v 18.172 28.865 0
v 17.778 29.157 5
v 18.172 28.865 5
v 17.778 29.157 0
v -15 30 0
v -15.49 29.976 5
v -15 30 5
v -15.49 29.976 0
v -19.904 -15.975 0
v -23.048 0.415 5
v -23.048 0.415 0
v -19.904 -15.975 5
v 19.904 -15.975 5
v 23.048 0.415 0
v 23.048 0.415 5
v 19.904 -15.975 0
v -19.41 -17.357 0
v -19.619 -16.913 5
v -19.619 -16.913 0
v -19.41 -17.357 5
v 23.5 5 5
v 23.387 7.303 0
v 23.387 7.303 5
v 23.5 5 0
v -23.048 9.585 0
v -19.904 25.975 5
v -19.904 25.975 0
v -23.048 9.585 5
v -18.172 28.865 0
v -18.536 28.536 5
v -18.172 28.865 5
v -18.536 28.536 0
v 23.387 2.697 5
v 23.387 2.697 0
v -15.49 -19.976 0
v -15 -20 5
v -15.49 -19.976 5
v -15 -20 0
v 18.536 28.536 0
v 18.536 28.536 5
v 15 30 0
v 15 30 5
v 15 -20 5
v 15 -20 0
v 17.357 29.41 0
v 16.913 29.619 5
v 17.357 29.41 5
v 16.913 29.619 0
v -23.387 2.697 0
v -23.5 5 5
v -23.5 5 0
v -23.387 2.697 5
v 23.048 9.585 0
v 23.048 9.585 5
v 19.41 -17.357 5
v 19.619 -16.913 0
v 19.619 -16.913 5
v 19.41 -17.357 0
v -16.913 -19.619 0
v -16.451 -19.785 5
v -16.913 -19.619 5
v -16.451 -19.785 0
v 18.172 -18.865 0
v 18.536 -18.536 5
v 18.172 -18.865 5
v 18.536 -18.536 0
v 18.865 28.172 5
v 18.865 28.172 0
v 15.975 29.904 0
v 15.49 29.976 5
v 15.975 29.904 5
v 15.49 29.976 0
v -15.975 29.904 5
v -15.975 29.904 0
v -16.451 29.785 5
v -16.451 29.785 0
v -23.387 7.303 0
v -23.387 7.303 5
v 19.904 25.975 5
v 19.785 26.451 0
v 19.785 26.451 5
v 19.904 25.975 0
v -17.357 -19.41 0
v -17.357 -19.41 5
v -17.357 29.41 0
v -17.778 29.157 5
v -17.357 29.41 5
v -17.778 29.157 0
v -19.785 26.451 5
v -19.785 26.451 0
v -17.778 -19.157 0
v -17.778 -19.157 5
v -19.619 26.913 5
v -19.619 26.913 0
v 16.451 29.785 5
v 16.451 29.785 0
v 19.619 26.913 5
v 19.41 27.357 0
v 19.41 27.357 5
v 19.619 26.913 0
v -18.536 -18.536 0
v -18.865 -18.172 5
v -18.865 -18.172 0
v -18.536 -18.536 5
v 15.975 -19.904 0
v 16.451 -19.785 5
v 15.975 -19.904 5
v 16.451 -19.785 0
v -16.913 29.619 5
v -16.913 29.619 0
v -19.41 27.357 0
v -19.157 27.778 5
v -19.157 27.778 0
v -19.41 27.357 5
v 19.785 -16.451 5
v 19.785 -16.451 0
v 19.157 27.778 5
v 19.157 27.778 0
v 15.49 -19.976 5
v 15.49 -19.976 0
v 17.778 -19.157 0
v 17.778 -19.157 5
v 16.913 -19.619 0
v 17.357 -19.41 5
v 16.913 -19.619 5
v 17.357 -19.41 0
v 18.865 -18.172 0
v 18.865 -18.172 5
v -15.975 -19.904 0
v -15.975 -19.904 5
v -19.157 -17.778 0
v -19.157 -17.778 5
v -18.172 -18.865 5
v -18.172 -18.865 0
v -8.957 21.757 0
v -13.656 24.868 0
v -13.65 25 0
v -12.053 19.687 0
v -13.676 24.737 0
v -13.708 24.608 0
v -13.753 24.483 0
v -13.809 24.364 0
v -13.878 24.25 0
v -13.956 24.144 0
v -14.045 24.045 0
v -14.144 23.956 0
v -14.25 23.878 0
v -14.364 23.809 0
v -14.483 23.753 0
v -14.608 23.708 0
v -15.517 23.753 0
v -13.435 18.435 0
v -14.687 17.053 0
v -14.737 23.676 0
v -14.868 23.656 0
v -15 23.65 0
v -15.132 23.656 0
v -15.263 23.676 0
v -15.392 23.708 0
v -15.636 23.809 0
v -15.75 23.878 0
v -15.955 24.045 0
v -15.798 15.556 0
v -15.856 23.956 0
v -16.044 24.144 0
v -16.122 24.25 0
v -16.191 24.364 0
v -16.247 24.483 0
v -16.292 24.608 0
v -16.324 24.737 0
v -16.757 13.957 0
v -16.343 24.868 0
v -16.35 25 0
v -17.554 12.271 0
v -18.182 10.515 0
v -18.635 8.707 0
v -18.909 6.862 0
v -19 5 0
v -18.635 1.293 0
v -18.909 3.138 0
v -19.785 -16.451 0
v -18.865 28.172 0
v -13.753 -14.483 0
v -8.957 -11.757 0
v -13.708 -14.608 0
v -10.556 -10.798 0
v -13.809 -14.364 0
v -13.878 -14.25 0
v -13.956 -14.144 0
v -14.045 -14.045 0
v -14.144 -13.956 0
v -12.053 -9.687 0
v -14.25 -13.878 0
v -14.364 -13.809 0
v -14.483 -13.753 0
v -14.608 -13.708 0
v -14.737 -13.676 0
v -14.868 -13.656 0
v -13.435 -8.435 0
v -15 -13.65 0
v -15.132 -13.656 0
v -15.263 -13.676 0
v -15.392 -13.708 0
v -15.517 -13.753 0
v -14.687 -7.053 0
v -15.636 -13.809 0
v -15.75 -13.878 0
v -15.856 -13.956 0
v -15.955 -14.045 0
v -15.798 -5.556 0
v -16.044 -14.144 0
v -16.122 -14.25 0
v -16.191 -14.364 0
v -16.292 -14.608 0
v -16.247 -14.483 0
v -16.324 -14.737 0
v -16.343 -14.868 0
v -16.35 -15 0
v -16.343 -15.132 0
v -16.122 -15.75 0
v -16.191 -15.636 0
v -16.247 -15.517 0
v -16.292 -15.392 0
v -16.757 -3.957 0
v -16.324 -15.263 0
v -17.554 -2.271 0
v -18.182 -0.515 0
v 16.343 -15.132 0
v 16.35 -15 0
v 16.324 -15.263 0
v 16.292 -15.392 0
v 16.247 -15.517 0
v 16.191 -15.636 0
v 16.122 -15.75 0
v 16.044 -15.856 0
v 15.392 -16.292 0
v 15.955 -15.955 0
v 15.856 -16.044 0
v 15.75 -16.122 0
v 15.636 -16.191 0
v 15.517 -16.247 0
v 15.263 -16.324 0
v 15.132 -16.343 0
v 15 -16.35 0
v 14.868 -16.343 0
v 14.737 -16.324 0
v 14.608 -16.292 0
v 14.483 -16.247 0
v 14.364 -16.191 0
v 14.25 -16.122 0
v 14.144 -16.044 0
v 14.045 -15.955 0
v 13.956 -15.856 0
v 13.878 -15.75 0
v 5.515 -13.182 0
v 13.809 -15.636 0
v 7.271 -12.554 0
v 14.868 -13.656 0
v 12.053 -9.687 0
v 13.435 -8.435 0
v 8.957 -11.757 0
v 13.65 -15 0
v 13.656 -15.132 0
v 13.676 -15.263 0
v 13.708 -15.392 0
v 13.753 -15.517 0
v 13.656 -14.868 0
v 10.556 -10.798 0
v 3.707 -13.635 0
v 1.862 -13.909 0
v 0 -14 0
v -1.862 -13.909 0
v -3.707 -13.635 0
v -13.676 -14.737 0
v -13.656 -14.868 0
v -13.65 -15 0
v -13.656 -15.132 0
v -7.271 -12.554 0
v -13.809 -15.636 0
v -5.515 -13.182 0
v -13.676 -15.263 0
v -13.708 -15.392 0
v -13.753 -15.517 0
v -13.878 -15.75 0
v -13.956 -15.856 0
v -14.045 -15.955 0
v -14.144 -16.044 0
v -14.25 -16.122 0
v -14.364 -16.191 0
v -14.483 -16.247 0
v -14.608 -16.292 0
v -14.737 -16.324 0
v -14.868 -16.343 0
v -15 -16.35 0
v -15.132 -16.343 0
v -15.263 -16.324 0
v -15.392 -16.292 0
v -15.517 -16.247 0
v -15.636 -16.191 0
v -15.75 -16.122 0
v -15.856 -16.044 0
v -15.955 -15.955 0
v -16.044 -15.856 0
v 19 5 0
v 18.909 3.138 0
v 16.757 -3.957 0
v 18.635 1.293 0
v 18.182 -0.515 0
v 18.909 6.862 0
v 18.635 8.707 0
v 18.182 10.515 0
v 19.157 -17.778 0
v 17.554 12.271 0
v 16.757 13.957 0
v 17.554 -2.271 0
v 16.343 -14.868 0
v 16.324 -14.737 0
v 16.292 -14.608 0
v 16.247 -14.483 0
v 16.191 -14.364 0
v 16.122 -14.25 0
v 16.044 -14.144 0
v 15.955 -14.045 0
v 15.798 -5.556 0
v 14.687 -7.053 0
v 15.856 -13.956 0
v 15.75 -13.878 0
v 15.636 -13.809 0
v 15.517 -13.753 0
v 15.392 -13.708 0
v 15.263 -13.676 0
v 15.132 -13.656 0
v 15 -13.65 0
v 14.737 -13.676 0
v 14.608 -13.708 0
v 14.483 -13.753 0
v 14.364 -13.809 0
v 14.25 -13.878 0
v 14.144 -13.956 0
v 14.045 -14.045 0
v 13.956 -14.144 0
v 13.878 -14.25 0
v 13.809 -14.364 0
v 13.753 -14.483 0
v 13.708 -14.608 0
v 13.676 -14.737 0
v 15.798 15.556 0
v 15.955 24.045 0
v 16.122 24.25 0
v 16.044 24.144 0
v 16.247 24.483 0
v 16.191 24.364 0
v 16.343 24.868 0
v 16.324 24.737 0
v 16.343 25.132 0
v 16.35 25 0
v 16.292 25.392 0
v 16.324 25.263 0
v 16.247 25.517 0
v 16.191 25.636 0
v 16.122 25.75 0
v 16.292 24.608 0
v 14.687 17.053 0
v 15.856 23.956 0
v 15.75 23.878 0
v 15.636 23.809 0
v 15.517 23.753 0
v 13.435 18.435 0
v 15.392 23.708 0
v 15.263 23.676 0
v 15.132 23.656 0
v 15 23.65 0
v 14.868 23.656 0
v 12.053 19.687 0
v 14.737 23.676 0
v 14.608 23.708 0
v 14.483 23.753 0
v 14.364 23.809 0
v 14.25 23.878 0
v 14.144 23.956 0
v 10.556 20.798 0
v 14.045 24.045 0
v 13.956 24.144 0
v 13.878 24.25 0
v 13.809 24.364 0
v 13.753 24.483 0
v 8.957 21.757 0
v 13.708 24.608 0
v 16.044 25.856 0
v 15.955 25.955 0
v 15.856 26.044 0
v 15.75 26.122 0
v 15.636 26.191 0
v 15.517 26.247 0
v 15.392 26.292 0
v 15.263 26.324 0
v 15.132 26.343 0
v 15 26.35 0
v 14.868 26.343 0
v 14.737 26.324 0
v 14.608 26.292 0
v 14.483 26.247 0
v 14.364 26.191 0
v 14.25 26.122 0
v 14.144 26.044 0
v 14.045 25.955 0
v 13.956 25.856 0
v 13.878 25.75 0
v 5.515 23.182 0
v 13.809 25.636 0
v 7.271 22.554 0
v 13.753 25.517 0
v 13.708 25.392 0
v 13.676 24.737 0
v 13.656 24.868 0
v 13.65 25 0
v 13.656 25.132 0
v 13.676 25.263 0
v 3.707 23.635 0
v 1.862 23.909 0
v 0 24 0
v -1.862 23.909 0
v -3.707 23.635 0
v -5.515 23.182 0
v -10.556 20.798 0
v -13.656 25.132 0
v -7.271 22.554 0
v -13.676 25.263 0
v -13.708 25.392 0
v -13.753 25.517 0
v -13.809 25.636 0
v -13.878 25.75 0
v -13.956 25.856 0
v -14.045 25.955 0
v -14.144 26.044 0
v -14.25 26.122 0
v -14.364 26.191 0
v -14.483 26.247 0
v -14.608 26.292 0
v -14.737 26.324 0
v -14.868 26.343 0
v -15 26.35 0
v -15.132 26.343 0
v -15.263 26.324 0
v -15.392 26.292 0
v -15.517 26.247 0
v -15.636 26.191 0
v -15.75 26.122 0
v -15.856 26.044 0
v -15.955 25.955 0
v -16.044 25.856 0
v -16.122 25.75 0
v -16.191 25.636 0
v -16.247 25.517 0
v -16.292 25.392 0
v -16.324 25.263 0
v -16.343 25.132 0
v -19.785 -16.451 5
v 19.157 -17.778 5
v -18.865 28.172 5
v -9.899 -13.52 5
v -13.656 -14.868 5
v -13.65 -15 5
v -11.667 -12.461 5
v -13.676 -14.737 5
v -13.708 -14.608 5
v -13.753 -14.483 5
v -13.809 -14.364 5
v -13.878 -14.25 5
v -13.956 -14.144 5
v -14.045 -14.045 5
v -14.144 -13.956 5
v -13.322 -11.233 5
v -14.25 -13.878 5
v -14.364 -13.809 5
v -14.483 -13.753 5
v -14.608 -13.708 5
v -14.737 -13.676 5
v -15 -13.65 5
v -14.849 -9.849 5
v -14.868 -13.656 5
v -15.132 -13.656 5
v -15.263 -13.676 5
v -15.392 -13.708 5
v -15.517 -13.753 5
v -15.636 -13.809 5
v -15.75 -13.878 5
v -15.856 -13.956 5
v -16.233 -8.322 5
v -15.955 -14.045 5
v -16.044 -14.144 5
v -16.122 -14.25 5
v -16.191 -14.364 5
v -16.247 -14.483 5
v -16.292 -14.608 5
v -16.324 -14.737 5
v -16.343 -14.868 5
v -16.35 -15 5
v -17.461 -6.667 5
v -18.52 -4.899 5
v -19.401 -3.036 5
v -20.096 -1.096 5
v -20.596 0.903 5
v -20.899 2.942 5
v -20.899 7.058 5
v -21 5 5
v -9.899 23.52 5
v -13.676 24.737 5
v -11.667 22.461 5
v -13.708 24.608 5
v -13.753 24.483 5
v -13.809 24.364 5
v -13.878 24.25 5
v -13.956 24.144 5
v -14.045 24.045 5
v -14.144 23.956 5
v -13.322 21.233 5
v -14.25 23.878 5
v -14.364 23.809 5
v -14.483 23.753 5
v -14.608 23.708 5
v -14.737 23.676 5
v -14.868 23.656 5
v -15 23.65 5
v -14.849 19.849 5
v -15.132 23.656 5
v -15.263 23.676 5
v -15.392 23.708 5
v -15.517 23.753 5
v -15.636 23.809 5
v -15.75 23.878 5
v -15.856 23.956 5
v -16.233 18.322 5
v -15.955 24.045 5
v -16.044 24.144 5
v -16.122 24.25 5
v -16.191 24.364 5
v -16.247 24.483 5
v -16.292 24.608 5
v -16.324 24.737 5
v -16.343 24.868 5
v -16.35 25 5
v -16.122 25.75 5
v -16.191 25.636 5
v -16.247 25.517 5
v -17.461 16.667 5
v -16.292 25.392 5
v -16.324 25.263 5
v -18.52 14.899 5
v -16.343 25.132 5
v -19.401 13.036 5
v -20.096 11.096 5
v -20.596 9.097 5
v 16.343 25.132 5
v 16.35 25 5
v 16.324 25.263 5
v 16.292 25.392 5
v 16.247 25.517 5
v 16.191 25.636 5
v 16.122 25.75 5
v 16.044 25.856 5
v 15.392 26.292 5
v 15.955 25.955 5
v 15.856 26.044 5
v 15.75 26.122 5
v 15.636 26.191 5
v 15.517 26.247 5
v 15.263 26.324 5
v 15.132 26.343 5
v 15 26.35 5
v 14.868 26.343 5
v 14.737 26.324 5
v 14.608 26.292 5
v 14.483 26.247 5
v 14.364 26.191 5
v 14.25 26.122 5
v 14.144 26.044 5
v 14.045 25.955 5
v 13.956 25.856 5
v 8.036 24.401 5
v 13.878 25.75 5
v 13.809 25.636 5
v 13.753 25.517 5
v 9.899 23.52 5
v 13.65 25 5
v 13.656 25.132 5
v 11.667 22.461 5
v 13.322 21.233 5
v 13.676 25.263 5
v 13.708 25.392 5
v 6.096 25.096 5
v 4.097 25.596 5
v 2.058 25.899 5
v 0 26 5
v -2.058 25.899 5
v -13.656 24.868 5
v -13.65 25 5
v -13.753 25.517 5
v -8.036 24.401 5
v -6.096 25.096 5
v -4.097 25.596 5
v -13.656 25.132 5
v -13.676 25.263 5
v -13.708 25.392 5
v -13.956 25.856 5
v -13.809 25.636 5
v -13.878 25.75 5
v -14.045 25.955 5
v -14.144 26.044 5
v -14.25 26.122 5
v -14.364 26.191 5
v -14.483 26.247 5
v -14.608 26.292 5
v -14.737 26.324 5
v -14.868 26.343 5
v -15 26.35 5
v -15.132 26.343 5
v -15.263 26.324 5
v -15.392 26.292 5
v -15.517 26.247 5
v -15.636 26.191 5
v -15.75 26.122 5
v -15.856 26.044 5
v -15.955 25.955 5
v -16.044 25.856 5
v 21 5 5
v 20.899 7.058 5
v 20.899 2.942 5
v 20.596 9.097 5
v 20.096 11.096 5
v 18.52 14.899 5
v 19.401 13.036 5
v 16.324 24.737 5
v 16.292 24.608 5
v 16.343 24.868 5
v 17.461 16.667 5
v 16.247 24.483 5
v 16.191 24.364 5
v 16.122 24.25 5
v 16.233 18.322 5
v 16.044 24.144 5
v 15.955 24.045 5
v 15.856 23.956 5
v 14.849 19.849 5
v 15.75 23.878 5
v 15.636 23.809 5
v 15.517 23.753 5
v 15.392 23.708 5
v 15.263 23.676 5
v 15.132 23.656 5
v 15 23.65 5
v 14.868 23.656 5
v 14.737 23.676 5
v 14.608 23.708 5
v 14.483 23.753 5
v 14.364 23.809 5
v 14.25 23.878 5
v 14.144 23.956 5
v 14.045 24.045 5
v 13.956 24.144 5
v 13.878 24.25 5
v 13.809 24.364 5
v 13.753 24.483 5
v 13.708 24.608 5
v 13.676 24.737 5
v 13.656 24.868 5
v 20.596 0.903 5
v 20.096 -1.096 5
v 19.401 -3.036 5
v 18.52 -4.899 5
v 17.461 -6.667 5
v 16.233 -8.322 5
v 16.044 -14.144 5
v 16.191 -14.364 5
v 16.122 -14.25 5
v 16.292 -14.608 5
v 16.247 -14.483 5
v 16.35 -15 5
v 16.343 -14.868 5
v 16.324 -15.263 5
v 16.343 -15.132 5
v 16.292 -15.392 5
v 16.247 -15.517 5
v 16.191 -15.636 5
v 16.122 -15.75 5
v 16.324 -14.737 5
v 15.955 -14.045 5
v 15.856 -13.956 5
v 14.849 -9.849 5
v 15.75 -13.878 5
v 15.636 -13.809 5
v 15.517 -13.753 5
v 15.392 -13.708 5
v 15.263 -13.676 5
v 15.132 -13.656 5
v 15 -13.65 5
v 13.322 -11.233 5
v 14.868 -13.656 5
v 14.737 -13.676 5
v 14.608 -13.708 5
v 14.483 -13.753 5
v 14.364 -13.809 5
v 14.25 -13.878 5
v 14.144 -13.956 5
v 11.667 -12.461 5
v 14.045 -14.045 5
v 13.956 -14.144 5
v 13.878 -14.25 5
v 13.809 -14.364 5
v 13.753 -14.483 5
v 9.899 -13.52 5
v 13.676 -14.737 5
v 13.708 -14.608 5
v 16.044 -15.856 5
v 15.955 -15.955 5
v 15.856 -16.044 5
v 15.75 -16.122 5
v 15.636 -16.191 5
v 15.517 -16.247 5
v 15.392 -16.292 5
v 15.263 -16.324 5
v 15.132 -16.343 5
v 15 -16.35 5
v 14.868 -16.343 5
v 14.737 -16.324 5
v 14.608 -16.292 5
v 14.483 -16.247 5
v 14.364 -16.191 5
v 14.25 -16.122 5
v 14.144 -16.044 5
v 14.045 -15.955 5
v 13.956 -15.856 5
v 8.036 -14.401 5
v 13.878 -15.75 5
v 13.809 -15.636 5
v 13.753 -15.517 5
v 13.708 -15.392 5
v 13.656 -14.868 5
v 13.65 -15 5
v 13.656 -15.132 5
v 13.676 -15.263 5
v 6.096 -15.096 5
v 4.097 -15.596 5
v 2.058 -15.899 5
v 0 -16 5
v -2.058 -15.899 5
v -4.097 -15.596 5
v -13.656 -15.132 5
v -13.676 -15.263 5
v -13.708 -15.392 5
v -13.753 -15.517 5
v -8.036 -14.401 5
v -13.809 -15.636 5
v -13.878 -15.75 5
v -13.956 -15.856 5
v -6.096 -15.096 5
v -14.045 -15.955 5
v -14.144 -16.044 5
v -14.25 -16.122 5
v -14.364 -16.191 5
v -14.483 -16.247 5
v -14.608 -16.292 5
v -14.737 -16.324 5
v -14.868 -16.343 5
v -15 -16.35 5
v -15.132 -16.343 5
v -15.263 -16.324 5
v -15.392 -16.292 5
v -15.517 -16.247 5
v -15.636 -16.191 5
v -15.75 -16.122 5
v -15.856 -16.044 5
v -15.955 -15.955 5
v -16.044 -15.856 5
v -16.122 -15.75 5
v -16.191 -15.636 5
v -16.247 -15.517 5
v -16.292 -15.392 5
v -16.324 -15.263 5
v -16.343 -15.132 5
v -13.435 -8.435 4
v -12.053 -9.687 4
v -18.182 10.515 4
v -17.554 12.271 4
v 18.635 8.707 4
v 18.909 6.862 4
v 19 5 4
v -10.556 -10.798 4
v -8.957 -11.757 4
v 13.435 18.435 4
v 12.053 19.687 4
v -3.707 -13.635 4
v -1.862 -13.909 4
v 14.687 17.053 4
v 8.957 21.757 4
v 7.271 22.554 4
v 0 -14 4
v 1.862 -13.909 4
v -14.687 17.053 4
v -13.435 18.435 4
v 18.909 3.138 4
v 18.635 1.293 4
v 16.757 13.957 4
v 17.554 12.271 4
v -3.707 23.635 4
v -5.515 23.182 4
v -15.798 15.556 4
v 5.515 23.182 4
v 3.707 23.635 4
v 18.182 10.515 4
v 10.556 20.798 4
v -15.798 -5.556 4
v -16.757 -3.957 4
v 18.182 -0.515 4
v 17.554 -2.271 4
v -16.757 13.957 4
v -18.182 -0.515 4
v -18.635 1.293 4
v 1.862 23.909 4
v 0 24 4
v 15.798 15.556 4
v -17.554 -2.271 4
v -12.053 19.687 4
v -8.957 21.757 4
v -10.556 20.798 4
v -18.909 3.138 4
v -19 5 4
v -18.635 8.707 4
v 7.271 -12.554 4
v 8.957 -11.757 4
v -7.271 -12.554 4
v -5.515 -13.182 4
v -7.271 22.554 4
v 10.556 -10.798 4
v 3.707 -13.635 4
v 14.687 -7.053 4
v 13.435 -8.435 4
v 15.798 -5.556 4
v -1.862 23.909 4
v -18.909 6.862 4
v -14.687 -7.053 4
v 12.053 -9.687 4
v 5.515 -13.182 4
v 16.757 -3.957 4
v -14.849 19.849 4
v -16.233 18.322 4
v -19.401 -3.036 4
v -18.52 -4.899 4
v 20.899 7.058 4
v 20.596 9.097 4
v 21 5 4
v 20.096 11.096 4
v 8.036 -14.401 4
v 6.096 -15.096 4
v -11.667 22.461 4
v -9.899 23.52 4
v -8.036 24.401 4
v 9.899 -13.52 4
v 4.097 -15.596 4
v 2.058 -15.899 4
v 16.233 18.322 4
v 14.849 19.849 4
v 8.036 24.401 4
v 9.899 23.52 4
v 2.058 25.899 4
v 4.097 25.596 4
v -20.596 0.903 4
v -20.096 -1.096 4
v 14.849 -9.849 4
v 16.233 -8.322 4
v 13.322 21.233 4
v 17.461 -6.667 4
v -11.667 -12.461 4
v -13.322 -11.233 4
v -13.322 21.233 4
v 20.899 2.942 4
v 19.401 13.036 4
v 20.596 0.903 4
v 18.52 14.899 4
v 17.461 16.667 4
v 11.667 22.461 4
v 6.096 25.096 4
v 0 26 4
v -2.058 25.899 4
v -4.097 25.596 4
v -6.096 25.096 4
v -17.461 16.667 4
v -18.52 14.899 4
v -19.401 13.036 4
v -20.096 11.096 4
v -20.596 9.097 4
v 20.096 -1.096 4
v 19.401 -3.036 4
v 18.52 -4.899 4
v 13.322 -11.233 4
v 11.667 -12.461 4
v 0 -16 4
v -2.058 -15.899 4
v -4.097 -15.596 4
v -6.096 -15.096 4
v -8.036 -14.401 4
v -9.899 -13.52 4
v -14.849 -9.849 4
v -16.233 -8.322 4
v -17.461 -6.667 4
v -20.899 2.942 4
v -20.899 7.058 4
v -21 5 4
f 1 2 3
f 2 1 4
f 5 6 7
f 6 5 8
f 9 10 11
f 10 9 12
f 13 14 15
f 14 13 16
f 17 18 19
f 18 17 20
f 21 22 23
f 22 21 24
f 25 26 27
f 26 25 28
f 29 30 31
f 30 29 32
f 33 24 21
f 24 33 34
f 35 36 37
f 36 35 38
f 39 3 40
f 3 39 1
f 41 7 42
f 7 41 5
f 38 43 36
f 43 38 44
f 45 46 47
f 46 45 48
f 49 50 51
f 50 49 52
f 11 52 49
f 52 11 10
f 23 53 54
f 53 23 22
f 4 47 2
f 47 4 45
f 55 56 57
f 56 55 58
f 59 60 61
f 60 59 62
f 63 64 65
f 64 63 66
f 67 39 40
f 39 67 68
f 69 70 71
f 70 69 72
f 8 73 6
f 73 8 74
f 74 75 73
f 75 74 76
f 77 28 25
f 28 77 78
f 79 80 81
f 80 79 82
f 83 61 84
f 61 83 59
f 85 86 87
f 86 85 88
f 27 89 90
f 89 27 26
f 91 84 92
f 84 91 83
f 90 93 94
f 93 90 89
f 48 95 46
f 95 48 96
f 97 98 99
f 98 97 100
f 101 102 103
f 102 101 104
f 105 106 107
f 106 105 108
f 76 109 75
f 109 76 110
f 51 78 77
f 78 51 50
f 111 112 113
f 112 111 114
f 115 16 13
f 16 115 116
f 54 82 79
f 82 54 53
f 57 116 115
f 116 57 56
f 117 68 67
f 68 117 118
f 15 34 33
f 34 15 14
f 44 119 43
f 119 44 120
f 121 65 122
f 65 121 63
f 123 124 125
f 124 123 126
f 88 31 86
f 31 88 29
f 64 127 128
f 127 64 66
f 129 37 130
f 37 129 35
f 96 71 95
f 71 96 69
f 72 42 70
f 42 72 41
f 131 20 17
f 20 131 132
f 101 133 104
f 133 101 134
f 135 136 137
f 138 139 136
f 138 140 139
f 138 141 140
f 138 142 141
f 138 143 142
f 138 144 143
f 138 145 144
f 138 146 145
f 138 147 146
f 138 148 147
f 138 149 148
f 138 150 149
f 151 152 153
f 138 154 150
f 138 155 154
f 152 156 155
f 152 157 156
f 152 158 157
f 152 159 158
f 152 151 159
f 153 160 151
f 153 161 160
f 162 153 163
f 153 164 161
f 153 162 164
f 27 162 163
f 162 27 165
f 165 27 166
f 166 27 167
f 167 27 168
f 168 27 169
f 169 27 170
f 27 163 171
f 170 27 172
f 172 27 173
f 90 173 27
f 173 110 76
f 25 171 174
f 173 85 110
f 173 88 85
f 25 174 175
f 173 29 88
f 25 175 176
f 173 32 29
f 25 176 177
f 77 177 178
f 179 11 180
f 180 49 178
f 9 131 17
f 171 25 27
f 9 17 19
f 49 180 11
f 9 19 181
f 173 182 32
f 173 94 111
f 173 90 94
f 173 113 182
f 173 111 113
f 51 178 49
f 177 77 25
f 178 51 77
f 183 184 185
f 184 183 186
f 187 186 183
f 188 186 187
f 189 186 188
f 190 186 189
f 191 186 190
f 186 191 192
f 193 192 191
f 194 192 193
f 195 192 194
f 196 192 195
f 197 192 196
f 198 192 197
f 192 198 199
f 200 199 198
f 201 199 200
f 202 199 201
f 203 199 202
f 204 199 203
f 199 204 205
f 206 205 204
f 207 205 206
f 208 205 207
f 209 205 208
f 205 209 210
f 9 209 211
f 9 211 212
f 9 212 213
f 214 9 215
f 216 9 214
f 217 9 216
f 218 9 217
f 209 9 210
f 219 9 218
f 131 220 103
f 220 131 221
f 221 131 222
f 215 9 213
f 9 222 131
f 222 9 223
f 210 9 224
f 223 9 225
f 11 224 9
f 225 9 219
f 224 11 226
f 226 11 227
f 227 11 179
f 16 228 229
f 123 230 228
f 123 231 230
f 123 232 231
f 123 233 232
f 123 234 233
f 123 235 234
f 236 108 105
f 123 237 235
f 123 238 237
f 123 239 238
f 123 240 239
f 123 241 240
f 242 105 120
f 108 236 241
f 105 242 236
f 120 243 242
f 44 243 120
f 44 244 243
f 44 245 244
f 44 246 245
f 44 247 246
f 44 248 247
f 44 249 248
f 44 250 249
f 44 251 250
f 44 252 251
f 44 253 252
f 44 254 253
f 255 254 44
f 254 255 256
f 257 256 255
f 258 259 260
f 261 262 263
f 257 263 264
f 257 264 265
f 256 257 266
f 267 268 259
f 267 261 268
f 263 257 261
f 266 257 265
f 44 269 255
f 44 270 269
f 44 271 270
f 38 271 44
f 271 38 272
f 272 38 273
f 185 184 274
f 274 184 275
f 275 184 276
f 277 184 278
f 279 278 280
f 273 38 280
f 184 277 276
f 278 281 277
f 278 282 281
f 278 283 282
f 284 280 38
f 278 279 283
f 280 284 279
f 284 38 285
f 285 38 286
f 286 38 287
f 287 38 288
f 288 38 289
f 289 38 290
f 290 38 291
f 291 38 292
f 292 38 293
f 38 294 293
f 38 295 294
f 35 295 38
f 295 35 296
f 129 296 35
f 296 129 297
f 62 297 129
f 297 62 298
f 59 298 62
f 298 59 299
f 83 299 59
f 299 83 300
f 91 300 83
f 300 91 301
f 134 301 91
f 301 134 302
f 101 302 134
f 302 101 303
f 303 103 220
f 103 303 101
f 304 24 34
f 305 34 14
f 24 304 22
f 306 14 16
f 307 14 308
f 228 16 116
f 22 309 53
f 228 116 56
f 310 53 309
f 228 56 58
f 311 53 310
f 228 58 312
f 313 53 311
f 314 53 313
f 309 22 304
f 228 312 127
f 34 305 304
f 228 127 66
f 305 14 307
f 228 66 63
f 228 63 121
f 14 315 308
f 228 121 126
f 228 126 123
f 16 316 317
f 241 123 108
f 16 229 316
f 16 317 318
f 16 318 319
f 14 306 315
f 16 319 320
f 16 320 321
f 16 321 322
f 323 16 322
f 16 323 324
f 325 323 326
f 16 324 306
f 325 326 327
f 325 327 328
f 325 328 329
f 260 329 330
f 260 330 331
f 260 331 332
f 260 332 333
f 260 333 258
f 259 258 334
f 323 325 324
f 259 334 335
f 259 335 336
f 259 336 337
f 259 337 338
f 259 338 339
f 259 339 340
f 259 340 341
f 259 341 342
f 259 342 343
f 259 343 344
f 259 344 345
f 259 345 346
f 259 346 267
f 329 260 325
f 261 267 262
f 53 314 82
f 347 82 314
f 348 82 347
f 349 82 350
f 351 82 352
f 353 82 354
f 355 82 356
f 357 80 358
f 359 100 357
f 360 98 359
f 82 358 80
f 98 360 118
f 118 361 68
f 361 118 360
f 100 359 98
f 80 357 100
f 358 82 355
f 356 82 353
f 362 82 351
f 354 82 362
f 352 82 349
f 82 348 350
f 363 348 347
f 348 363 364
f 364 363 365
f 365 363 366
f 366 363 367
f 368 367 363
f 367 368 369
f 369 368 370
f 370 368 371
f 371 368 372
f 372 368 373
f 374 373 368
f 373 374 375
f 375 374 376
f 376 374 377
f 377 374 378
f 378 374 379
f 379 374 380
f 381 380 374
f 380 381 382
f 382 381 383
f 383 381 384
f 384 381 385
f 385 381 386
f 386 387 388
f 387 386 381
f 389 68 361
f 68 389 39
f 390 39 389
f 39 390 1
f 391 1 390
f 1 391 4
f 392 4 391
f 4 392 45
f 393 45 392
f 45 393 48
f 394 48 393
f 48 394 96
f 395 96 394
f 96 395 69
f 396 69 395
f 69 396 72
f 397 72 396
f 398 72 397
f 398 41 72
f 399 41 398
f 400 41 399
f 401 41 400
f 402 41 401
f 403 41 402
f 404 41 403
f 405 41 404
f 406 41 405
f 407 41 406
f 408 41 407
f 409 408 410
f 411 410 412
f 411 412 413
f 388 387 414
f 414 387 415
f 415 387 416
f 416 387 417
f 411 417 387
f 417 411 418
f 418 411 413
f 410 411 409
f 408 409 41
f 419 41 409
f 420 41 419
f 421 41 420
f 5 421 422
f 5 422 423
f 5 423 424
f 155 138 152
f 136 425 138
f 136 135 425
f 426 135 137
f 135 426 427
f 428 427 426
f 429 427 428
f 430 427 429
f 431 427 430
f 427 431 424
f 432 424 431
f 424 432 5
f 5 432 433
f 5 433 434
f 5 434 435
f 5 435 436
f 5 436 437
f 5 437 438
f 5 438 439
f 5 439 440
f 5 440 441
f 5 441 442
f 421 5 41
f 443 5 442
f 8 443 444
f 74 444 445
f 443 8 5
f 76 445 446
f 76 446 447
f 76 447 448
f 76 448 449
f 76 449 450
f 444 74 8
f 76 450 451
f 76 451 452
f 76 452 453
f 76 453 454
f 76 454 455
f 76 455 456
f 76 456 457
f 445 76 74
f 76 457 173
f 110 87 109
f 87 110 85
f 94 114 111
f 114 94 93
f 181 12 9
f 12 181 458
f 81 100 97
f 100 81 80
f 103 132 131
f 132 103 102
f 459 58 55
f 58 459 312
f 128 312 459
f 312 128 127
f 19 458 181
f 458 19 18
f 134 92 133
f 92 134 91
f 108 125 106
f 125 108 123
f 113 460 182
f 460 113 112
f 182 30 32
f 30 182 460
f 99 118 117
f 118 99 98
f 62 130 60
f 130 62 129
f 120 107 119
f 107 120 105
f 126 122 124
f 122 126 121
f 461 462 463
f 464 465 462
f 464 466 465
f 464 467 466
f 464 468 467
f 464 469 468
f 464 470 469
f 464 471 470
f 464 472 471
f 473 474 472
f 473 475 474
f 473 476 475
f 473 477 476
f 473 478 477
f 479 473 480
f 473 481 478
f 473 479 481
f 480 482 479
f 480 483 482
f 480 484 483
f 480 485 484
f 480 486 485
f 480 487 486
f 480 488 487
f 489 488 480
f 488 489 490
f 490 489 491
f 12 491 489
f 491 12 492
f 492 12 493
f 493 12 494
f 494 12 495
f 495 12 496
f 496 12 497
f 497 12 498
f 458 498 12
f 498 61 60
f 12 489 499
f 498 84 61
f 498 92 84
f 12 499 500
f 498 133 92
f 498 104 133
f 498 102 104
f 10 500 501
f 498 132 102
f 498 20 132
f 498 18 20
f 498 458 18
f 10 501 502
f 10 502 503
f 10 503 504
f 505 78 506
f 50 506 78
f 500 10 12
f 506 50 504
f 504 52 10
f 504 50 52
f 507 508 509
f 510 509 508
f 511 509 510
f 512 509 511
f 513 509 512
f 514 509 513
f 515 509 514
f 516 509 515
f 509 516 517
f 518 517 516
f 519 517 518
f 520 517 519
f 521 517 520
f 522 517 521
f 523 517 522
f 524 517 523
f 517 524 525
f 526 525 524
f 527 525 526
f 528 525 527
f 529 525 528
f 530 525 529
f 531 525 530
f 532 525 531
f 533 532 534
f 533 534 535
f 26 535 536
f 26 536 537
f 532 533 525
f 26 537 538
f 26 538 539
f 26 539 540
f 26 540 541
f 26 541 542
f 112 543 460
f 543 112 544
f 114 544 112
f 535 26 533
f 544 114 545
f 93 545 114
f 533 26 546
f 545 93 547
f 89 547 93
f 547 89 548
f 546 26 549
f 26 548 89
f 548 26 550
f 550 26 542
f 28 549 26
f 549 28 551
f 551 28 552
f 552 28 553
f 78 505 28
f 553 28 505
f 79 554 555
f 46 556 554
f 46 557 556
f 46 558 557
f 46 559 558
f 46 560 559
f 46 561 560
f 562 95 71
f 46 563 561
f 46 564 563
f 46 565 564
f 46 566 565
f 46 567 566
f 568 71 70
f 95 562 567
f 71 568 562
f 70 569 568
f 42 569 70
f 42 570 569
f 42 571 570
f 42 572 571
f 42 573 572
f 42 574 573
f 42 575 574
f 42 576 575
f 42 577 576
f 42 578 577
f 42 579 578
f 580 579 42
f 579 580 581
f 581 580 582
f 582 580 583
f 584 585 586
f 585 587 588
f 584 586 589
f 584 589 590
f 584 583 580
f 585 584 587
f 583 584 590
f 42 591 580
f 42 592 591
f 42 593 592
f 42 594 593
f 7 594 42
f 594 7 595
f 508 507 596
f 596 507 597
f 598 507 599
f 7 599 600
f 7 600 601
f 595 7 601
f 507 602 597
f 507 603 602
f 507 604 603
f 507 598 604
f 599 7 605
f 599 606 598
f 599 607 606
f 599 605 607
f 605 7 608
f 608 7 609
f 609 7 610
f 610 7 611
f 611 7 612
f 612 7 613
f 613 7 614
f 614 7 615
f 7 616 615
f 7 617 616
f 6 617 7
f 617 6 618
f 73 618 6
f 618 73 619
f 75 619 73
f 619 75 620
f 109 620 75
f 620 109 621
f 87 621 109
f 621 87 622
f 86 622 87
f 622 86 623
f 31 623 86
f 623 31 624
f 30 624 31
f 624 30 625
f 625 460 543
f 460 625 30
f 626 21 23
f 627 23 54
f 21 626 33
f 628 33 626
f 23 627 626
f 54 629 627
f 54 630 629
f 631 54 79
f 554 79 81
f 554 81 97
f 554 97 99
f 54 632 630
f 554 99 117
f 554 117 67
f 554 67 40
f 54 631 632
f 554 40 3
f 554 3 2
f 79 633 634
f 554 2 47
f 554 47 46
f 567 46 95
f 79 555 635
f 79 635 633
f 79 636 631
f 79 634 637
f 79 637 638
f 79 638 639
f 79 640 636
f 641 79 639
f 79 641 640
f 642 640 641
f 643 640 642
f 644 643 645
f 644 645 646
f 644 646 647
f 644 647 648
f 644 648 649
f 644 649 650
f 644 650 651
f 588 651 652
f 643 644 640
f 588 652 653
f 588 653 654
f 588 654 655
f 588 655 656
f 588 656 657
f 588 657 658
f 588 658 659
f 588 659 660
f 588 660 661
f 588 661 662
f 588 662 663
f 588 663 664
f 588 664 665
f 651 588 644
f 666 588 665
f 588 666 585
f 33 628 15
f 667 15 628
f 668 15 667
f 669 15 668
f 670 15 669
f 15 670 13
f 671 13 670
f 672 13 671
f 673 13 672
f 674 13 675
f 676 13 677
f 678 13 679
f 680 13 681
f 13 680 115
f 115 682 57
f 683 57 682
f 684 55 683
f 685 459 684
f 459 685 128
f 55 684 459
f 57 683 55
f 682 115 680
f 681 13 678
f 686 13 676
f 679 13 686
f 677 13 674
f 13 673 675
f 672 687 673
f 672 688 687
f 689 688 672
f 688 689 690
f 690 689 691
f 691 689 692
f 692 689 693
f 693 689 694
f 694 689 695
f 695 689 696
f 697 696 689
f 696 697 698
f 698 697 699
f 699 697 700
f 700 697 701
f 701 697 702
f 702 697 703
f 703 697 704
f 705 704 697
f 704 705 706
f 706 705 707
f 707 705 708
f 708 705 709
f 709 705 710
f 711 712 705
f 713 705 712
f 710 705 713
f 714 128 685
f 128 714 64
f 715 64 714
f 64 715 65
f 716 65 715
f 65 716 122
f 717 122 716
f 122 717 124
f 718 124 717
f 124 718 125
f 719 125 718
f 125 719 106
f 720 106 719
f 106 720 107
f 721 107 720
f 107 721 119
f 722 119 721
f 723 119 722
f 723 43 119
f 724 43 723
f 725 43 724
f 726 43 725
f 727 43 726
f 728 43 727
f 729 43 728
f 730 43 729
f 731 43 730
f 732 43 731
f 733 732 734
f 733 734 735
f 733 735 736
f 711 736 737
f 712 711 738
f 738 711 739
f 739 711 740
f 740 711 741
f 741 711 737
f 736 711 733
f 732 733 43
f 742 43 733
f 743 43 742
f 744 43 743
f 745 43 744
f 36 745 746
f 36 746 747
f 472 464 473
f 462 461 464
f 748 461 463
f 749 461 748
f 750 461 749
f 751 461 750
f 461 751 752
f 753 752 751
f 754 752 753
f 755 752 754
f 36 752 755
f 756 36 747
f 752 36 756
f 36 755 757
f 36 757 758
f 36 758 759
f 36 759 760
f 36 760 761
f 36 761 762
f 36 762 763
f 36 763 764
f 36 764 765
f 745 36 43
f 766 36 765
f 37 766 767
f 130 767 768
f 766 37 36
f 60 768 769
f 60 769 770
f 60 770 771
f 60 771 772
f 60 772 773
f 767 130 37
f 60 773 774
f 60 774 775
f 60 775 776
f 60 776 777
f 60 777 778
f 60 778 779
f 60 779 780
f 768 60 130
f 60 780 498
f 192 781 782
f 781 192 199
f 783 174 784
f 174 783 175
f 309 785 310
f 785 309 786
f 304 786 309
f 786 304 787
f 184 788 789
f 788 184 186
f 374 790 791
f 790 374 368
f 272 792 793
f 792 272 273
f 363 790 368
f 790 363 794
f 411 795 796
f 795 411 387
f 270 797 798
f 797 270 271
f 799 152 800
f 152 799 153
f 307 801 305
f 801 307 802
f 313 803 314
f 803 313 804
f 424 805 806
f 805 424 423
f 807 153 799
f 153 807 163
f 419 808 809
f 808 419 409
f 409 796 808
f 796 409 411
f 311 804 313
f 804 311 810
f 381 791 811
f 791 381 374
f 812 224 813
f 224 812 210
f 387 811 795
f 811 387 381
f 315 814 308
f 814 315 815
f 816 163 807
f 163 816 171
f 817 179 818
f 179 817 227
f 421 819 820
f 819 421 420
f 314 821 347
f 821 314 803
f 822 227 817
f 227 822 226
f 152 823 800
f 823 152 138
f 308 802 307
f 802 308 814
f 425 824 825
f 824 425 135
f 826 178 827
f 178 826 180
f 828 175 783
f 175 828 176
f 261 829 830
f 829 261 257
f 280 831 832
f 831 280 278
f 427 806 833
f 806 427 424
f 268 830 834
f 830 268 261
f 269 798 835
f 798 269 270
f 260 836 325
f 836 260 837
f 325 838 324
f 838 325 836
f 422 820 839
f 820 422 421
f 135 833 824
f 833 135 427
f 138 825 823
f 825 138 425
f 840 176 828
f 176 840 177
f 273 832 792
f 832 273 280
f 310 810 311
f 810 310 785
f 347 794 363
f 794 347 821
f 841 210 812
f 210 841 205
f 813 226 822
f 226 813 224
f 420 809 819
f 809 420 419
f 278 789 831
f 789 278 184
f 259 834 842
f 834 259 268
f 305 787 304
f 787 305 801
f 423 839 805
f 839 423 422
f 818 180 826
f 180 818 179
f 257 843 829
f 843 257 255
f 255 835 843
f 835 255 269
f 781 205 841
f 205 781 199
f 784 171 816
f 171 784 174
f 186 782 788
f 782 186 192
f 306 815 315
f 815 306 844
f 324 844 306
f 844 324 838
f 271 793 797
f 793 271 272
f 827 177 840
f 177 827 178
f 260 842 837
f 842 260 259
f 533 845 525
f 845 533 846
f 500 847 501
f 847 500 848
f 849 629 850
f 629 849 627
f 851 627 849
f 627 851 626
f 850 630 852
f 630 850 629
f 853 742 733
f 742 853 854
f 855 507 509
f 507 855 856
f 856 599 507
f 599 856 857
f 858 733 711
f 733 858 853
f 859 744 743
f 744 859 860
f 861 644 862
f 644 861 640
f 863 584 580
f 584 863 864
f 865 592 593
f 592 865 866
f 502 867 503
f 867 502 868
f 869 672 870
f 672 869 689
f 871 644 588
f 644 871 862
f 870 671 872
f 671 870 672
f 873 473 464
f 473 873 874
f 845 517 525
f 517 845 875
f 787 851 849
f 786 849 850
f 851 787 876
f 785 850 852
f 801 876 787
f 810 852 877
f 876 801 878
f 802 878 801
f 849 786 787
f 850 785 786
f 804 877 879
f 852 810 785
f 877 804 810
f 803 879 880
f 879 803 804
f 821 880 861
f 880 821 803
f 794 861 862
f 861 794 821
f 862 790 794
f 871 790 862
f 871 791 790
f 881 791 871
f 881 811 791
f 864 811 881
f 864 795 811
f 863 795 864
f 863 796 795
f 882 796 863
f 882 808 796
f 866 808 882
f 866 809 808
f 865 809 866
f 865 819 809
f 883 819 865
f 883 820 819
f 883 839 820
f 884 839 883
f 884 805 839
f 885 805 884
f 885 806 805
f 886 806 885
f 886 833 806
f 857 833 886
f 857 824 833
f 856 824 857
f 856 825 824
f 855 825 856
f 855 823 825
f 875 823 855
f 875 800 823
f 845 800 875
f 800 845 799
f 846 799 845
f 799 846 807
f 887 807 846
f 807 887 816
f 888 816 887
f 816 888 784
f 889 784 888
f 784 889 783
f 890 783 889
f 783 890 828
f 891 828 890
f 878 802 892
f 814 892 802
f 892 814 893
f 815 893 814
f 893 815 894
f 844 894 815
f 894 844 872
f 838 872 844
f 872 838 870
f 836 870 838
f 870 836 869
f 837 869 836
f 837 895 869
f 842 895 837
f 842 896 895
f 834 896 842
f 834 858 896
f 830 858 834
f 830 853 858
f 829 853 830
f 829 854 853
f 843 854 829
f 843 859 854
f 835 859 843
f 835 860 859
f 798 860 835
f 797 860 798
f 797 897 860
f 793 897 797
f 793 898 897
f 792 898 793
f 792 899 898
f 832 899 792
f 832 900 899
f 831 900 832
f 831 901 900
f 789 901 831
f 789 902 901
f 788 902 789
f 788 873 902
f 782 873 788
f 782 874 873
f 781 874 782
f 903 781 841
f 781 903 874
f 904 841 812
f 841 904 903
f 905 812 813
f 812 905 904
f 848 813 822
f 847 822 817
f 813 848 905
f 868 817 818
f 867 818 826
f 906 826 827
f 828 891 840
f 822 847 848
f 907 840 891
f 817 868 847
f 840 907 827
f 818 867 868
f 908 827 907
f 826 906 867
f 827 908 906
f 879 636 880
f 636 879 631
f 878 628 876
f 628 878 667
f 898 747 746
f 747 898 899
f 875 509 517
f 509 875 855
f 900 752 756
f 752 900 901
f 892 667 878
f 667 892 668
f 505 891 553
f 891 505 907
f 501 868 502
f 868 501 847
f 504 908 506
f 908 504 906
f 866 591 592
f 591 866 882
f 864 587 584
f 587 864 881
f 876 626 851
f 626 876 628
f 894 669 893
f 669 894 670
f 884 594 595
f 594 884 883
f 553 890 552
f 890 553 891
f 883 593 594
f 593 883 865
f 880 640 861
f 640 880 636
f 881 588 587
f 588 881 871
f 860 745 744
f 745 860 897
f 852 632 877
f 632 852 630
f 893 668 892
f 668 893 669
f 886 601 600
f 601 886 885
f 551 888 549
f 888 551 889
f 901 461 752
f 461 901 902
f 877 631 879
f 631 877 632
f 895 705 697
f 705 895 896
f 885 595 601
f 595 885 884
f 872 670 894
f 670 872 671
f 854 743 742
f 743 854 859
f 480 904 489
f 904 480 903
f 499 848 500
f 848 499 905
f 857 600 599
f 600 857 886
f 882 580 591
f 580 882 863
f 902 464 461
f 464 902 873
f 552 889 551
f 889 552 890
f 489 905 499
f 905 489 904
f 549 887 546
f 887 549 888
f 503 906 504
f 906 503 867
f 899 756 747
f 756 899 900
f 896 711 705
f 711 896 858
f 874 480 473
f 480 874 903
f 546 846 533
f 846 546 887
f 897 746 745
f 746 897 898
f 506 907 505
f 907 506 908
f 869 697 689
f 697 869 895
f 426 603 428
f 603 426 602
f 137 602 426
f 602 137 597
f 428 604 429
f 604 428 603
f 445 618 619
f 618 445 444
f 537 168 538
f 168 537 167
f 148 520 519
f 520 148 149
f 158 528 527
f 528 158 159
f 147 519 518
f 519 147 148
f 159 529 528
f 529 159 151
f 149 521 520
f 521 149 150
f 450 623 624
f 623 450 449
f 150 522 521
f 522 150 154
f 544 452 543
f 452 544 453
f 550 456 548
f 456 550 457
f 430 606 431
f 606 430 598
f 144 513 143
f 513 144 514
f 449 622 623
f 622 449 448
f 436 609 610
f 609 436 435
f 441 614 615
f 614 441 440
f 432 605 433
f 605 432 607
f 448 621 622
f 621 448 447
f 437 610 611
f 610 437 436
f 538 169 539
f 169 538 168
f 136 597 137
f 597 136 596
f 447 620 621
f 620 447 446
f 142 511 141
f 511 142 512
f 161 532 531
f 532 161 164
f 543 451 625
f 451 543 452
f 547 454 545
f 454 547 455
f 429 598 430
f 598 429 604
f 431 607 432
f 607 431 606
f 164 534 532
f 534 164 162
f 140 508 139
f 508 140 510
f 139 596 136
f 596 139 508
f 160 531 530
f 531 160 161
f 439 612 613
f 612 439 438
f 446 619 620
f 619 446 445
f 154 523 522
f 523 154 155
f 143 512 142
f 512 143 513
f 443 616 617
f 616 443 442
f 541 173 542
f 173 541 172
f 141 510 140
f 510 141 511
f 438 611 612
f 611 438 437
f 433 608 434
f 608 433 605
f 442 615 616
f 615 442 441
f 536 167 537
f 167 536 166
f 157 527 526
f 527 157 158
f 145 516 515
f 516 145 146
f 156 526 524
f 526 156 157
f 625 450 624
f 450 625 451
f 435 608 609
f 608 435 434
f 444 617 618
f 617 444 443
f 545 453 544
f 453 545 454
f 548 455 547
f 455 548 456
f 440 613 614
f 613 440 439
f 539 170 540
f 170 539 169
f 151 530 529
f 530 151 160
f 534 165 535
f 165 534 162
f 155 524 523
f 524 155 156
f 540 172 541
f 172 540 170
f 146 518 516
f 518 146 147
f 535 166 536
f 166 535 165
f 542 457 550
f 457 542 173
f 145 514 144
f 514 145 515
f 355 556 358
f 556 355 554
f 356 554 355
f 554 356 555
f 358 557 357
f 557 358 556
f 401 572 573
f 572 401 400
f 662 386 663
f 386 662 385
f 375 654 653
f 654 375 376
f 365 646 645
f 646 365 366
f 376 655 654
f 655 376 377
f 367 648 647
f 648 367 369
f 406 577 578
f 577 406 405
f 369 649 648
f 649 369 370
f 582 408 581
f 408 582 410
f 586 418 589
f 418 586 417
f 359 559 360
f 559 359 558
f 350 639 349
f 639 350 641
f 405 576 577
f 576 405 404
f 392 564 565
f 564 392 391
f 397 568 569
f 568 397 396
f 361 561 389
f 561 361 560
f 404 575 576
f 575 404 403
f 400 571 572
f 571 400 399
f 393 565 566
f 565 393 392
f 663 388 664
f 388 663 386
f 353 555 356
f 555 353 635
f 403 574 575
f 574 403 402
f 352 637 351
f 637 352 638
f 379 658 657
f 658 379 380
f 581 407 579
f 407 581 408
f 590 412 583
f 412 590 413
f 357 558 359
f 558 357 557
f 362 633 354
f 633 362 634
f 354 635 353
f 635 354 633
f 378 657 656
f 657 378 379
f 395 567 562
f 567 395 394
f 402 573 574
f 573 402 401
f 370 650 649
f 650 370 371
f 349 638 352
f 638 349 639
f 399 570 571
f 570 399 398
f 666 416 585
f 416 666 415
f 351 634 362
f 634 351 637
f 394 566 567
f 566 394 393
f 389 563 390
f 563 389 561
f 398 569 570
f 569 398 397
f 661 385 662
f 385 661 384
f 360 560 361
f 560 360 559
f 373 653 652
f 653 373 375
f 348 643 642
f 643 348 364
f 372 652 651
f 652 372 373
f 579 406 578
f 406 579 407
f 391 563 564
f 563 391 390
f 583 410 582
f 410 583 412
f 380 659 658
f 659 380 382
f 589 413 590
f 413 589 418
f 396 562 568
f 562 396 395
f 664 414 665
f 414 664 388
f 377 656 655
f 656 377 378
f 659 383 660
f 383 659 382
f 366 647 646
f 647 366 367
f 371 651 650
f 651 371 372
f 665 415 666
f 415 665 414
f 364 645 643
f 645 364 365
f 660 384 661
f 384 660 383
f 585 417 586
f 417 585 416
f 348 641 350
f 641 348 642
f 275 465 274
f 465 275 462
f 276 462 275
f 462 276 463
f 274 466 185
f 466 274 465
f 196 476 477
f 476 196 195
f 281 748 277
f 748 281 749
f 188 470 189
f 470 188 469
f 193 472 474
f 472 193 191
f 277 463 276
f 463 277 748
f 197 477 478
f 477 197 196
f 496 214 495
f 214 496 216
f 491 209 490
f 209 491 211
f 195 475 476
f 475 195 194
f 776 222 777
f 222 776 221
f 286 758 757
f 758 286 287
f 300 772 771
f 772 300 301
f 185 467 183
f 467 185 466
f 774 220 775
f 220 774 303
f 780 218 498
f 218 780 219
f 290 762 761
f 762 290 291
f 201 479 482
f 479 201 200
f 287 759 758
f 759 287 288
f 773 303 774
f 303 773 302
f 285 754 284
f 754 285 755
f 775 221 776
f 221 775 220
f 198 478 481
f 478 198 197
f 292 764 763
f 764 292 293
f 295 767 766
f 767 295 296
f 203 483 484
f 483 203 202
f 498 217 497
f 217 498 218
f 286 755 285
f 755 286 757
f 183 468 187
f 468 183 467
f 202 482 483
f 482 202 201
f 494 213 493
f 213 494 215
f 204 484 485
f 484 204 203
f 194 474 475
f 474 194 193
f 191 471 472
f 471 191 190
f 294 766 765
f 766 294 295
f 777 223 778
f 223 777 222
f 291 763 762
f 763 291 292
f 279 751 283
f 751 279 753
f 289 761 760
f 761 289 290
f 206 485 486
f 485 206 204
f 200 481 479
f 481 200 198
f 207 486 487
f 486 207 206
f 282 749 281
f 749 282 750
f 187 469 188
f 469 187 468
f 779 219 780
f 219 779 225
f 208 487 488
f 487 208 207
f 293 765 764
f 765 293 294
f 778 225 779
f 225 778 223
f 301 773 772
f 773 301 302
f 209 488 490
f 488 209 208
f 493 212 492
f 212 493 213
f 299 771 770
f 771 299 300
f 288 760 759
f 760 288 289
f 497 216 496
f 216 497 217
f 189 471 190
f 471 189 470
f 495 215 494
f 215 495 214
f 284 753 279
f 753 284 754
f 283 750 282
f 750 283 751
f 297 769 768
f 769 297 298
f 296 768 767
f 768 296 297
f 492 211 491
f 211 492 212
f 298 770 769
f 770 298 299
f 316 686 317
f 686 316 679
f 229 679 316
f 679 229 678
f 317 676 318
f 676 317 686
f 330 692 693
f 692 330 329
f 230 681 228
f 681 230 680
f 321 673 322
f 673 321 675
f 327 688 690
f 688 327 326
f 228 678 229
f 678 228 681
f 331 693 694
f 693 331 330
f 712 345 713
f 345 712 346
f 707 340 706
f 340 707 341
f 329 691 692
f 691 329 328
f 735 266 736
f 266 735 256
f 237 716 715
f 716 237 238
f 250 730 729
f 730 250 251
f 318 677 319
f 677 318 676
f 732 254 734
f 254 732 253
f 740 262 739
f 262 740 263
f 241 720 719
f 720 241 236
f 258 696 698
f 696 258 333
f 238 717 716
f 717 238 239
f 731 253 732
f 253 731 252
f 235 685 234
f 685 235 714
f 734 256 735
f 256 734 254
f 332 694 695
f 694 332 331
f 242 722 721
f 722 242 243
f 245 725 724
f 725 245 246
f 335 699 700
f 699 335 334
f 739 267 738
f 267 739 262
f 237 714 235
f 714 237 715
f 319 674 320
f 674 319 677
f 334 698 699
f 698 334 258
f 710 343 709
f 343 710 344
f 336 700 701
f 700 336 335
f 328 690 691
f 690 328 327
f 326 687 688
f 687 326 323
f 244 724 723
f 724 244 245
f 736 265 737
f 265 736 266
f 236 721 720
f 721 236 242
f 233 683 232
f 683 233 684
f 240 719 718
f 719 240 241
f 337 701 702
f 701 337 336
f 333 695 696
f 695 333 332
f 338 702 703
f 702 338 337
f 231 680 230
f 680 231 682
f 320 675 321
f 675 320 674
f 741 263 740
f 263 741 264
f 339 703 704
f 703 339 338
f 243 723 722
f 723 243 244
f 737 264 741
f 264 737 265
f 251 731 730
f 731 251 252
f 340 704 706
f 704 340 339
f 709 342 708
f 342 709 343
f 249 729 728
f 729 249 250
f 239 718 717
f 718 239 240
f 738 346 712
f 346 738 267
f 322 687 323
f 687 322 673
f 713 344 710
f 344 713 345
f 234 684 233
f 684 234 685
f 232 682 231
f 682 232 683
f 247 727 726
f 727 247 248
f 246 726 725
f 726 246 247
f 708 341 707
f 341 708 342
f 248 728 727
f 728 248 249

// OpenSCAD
$fn=64;

sh_through = 4;
sh_countersink = 3;
sh_thread = 2.7;


mounting_holes_height = 30;
mounting_holes_width = 40;

thickness = 5;

translate([0,5,0])difference() {
    union() {
        hull() {
            translate([-mounting_holes_height/2,mounting_holes_width/2,0])cylinder(thickness,5,5);
            translate([mounting_holes_height/2,mounting_holes_width/2,0])cylinder(thickness,5,5);
            translate([-mounting_holes_height/2,-mounting_holes_width/2,0])cylinder(thickness,5,5);
            translate([mounting_holes_height/2,-mounting_holes_width/2,0])cylinder(thickness,5,5);
            translate([0,0,0])cylinder(thickness, 47/2, 47/2);
        }
    }
    
    translate([0,0,-1])cylinder(20, 38/2, 38/2);
    translate([0,0,thickness - 1])cylinder(20,42/2,42/2);
    
    
    translate([-mounting_holes_height/2,mounting_holes_width/2,-1])cylinder(15, sh_thread/2, sh_thread/2);
    translate([mounting_holes_height/2,mounting_holes_width/2,-1])cylinder(15, sh_thread/2, sh_thread/2);
    translate([-mounting_holes_height/2,-mounting_holes_width/2,-1])cylinder(15, sh_thread/2, sh_thread/2);
    translate([mounting_holes_height/2,-mounting_holes_width/2,-1])cylinder(15, sh_thread/2, sh_thread/2);
}
